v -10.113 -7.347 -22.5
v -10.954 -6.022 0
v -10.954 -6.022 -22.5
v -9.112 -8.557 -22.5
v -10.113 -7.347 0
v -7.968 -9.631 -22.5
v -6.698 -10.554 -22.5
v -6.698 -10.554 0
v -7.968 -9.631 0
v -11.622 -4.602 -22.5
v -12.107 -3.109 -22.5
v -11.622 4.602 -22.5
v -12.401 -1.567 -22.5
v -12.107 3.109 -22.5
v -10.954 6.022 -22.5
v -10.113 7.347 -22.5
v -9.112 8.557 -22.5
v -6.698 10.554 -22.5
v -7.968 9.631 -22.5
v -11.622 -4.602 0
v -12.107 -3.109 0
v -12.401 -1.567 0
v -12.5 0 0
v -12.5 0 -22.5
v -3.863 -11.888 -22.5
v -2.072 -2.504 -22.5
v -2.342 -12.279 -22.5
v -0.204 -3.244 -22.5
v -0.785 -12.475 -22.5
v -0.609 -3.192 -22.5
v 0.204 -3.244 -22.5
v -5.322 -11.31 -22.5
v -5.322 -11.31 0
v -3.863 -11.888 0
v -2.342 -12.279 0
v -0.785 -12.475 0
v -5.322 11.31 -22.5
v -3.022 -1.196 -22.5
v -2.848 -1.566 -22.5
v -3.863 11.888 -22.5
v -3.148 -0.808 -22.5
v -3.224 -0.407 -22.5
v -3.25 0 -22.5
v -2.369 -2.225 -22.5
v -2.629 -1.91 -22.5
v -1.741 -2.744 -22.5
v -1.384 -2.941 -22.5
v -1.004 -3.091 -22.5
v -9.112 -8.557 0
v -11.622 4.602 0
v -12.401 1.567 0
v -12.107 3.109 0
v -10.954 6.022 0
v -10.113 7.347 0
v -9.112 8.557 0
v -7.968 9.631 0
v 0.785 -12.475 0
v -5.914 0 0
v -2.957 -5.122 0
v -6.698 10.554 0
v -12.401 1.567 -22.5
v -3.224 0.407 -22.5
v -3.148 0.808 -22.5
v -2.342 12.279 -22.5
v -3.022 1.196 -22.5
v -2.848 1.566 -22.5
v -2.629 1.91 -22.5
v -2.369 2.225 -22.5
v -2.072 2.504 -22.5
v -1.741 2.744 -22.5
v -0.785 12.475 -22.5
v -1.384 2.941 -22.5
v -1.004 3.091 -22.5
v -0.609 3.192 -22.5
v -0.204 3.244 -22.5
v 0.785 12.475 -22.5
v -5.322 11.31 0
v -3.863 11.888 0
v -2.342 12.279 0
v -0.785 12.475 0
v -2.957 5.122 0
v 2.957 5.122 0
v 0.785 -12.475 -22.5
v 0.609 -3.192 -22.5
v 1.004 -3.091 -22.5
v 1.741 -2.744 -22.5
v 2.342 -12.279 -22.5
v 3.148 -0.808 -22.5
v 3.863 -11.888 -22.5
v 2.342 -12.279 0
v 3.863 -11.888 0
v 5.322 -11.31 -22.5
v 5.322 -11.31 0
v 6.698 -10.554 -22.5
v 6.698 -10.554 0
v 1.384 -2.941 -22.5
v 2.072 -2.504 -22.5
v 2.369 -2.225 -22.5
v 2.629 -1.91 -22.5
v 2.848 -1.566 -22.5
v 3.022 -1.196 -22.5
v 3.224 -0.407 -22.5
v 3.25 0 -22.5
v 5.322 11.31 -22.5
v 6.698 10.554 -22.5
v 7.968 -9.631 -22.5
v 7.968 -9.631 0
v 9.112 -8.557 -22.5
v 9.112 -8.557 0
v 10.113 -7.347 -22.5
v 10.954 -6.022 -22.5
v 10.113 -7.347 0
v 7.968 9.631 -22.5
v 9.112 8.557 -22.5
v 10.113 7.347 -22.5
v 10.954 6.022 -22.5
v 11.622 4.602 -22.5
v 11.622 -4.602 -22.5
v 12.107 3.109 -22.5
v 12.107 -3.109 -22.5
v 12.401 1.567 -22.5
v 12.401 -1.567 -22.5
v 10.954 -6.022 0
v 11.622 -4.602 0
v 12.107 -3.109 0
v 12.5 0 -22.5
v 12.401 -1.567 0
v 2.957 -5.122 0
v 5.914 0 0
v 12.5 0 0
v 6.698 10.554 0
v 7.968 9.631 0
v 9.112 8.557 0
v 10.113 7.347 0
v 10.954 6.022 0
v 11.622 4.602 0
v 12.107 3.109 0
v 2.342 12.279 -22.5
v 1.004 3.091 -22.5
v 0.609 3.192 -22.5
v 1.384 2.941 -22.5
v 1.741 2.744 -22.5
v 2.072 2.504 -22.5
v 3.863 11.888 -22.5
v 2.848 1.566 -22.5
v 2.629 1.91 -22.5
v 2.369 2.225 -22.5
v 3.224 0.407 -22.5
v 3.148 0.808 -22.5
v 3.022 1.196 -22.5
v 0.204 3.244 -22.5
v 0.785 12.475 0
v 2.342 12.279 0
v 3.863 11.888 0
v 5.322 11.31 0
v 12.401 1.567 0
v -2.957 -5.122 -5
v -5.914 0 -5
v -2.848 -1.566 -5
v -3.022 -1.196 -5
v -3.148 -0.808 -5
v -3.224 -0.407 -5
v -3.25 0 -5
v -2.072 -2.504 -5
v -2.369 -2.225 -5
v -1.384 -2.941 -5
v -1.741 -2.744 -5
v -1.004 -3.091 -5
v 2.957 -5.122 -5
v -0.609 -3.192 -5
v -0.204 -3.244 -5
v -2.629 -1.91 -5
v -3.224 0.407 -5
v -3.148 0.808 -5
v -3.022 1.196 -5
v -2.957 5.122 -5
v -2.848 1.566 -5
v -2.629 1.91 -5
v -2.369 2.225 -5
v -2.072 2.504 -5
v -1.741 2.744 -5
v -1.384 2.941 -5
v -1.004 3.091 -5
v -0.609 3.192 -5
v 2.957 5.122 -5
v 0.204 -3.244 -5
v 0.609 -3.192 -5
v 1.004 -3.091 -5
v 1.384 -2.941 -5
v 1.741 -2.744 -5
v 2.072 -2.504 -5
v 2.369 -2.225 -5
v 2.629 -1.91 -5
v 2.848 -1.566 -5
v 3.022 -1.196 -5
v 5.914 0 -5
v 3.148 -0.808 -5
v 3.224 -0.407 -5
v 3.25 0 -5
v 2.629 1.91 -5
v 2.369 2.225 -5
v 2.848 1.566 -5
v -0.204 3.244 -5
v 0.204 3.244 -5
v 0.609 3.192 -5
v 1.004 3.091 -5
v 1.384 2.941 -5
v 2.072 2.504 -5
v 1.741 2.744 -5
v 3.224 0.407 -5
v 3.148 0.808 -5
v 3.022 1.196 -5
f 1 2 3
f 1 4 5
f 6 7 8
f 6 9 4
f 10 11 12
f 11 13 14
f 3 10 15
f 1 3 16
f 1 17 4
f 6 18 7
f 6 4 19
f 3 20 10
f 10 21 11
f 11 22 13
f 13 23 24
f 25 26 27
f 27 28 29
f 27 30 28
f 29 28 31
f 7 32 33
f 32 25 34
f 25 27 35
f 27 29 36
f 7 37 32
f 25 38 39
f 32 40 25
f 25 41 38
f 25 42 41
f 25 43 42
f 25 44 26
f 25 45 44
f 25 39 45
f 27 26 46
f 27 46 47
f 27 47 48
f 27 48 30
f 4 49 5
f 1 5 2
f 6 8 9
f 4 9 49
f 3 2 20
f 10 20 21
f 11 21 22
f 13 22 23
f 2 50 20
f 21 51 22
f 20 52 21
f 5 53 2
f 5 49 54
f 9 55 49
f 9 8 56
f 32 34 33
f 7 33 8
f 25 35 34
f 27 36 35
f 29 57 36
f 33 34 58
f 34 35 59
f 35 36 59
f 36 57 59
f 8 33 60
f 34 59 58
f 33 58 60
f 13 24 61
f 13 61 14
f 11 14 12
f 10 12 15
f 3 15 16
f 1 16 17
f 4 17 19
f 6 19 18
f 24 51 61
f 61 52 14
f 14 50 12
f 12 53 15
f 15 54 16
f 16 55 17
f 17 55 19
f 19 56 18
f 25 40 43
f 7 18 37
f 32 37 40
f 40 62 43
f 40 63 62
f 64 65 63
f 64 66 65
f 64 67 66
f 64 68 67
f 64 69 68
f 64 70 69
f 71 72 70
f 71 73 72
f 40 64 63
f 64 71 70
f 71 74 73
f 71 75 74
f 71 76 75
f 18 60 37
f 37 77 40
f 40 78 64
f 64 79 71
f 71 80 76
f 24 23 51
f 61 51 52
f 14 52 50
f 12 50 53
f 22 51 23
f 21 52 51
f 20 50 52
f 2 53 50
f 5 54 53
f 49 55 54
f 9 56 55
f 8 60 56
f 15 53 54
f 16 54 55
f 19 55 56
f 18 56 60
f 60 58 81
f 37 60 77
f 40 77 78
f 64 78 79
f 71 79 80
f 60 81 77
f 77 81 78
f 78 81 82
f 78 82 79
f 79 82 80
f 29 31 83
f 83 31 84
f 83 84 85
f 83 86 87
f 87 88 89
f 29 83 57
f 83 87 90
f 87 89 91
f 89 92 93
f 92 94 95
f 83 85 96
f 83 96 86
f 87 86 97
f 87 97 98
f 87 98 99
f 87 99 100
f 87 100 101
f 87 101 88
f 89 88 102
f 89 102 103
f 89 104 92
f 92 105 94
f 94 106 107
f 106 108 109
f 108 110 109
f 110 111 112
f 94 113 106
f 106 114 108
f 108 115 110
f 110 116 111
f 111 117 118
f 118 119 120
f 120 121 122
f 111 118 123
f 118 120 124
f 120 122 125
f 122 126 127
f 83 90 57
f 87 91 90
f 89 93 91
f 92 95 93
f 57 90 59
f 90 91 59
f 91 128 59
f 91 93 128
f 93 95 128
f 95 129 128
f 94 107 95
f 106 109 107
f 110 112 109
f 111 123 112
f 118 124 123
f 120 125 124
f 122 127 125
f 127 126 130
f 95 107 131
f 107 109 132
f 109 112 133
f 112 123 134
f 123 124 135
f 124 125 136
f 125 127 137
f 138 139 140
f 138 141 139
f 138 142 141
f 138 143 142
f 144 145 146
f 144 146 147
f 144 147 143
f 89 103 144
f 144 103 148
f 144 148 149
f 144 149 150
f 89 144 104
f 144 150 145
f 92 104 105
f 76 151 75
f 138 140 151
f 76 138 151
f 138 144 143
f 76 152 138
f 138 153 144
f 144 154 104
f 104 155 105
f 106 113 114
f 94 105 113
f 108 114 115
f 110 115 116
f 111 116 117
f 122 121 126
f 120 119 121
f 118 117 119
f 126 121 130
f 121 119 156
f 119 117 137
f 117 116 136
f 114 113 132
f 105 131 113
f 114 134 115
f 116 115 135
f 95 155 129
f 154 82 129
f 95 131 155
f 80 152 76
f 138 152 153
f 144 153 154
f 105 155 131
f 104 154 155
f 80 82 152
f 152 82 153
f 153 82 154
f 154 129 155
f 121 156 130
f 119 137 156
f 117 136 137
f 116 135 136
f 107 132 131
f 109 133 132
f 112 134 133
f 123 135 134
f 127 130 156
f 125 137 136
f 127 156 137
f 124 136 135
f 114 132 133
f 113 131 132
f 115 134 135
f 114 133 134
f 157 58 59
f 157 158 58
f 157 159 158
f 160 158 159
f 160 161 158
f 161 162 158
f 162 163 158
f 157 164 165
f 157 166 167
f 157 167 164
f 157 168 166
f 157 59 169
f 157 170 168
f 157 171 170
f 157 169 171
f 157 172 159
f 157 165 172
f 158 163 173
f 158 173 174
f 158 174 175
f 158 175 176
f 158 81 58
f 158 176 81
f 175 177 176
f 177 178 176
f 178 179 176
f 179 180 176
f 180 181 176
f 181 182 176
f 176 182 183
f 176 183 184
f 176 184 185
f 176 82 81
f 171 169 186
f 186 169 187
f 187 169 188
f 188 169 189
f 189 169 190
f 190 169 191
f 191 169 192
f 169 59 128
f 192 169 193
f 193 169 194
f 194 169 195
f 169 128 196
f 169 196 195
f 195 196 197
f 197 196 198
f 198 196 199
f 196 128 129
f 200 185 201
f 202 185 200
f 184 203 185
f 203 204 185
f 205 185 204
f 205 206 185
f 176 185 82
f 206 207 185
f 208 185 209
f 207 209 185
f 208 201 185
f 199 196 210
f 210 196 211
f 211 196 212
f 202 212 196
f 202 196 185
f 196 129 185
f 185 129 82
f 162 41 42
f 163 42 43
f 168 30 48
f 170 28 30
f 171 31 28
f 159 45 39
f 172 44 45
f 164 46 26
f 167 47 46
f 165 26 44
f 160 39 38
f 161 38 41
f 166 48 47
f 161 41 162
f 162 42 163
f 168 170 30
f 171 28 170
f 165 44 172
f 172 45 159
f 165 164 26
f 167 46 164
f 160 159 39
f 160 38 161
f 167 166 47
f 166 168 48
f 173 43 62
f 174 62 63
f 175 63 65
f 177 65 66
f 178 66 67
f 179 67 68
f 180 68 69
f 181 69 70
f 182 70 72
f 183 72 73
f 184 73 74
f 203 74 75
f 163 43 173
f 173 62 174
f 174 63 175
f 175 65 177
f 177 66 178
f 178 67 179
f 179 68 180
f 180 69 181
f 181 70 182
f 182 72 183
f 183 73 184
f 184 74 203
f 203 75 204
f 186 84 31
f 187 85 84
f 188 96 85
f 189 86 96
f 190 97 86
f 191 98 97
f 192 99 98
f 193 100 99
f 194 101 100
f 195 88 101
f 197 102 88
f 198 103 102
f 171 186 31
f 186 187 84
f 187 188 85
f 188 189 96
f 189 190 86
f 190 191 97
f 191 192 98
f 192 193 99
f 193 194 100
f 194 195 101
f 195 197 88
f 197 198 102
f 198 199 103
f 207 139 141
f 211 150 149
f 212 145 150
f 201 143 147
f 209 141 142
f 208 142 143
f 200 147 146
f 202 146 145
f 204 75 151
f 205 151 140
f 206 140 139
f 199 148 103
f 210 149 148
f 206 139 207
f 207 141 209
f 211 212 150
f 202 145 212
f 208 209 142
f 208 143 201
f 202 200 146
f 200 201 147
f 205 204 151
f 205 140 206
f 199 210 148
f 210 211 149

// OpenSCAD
$fn = 50;

difference() {
	union() {
		translate(v = [0, 0, -22.5]) {
			cylinder(h = 22.5, r = 12.5);
		}
		#translate(v = [0, 0, -24.0]) {
			cylinder(h = 24, r = 2.875);
		}
	}
	union() {
		translate(v = [0, 0, 0]) {
			rotate(a = [0, 0, 0]) {
				difference() {
					union() {
						translate(v = [0, 0, -5]) {
							linear_extrude(height = 5) {
								polygon(points = [[5.914249999999999, 0.0], [2.957125, 5.1218907443321156], [-2.9571249999999982, 5.1218907443321156], [-5.914249999999999, 7.242867331857232e-16], [-2.9571250000000022, -5.121890744332115], [2.9571249999999956, -5.121890744332118]]);
							}
						}
					}
					union();
				}
			}
		}
		#translate(v = [0, 0, -100.0]) {
			cylinder(h = 200, r = 3.25);
		}
	}
}
